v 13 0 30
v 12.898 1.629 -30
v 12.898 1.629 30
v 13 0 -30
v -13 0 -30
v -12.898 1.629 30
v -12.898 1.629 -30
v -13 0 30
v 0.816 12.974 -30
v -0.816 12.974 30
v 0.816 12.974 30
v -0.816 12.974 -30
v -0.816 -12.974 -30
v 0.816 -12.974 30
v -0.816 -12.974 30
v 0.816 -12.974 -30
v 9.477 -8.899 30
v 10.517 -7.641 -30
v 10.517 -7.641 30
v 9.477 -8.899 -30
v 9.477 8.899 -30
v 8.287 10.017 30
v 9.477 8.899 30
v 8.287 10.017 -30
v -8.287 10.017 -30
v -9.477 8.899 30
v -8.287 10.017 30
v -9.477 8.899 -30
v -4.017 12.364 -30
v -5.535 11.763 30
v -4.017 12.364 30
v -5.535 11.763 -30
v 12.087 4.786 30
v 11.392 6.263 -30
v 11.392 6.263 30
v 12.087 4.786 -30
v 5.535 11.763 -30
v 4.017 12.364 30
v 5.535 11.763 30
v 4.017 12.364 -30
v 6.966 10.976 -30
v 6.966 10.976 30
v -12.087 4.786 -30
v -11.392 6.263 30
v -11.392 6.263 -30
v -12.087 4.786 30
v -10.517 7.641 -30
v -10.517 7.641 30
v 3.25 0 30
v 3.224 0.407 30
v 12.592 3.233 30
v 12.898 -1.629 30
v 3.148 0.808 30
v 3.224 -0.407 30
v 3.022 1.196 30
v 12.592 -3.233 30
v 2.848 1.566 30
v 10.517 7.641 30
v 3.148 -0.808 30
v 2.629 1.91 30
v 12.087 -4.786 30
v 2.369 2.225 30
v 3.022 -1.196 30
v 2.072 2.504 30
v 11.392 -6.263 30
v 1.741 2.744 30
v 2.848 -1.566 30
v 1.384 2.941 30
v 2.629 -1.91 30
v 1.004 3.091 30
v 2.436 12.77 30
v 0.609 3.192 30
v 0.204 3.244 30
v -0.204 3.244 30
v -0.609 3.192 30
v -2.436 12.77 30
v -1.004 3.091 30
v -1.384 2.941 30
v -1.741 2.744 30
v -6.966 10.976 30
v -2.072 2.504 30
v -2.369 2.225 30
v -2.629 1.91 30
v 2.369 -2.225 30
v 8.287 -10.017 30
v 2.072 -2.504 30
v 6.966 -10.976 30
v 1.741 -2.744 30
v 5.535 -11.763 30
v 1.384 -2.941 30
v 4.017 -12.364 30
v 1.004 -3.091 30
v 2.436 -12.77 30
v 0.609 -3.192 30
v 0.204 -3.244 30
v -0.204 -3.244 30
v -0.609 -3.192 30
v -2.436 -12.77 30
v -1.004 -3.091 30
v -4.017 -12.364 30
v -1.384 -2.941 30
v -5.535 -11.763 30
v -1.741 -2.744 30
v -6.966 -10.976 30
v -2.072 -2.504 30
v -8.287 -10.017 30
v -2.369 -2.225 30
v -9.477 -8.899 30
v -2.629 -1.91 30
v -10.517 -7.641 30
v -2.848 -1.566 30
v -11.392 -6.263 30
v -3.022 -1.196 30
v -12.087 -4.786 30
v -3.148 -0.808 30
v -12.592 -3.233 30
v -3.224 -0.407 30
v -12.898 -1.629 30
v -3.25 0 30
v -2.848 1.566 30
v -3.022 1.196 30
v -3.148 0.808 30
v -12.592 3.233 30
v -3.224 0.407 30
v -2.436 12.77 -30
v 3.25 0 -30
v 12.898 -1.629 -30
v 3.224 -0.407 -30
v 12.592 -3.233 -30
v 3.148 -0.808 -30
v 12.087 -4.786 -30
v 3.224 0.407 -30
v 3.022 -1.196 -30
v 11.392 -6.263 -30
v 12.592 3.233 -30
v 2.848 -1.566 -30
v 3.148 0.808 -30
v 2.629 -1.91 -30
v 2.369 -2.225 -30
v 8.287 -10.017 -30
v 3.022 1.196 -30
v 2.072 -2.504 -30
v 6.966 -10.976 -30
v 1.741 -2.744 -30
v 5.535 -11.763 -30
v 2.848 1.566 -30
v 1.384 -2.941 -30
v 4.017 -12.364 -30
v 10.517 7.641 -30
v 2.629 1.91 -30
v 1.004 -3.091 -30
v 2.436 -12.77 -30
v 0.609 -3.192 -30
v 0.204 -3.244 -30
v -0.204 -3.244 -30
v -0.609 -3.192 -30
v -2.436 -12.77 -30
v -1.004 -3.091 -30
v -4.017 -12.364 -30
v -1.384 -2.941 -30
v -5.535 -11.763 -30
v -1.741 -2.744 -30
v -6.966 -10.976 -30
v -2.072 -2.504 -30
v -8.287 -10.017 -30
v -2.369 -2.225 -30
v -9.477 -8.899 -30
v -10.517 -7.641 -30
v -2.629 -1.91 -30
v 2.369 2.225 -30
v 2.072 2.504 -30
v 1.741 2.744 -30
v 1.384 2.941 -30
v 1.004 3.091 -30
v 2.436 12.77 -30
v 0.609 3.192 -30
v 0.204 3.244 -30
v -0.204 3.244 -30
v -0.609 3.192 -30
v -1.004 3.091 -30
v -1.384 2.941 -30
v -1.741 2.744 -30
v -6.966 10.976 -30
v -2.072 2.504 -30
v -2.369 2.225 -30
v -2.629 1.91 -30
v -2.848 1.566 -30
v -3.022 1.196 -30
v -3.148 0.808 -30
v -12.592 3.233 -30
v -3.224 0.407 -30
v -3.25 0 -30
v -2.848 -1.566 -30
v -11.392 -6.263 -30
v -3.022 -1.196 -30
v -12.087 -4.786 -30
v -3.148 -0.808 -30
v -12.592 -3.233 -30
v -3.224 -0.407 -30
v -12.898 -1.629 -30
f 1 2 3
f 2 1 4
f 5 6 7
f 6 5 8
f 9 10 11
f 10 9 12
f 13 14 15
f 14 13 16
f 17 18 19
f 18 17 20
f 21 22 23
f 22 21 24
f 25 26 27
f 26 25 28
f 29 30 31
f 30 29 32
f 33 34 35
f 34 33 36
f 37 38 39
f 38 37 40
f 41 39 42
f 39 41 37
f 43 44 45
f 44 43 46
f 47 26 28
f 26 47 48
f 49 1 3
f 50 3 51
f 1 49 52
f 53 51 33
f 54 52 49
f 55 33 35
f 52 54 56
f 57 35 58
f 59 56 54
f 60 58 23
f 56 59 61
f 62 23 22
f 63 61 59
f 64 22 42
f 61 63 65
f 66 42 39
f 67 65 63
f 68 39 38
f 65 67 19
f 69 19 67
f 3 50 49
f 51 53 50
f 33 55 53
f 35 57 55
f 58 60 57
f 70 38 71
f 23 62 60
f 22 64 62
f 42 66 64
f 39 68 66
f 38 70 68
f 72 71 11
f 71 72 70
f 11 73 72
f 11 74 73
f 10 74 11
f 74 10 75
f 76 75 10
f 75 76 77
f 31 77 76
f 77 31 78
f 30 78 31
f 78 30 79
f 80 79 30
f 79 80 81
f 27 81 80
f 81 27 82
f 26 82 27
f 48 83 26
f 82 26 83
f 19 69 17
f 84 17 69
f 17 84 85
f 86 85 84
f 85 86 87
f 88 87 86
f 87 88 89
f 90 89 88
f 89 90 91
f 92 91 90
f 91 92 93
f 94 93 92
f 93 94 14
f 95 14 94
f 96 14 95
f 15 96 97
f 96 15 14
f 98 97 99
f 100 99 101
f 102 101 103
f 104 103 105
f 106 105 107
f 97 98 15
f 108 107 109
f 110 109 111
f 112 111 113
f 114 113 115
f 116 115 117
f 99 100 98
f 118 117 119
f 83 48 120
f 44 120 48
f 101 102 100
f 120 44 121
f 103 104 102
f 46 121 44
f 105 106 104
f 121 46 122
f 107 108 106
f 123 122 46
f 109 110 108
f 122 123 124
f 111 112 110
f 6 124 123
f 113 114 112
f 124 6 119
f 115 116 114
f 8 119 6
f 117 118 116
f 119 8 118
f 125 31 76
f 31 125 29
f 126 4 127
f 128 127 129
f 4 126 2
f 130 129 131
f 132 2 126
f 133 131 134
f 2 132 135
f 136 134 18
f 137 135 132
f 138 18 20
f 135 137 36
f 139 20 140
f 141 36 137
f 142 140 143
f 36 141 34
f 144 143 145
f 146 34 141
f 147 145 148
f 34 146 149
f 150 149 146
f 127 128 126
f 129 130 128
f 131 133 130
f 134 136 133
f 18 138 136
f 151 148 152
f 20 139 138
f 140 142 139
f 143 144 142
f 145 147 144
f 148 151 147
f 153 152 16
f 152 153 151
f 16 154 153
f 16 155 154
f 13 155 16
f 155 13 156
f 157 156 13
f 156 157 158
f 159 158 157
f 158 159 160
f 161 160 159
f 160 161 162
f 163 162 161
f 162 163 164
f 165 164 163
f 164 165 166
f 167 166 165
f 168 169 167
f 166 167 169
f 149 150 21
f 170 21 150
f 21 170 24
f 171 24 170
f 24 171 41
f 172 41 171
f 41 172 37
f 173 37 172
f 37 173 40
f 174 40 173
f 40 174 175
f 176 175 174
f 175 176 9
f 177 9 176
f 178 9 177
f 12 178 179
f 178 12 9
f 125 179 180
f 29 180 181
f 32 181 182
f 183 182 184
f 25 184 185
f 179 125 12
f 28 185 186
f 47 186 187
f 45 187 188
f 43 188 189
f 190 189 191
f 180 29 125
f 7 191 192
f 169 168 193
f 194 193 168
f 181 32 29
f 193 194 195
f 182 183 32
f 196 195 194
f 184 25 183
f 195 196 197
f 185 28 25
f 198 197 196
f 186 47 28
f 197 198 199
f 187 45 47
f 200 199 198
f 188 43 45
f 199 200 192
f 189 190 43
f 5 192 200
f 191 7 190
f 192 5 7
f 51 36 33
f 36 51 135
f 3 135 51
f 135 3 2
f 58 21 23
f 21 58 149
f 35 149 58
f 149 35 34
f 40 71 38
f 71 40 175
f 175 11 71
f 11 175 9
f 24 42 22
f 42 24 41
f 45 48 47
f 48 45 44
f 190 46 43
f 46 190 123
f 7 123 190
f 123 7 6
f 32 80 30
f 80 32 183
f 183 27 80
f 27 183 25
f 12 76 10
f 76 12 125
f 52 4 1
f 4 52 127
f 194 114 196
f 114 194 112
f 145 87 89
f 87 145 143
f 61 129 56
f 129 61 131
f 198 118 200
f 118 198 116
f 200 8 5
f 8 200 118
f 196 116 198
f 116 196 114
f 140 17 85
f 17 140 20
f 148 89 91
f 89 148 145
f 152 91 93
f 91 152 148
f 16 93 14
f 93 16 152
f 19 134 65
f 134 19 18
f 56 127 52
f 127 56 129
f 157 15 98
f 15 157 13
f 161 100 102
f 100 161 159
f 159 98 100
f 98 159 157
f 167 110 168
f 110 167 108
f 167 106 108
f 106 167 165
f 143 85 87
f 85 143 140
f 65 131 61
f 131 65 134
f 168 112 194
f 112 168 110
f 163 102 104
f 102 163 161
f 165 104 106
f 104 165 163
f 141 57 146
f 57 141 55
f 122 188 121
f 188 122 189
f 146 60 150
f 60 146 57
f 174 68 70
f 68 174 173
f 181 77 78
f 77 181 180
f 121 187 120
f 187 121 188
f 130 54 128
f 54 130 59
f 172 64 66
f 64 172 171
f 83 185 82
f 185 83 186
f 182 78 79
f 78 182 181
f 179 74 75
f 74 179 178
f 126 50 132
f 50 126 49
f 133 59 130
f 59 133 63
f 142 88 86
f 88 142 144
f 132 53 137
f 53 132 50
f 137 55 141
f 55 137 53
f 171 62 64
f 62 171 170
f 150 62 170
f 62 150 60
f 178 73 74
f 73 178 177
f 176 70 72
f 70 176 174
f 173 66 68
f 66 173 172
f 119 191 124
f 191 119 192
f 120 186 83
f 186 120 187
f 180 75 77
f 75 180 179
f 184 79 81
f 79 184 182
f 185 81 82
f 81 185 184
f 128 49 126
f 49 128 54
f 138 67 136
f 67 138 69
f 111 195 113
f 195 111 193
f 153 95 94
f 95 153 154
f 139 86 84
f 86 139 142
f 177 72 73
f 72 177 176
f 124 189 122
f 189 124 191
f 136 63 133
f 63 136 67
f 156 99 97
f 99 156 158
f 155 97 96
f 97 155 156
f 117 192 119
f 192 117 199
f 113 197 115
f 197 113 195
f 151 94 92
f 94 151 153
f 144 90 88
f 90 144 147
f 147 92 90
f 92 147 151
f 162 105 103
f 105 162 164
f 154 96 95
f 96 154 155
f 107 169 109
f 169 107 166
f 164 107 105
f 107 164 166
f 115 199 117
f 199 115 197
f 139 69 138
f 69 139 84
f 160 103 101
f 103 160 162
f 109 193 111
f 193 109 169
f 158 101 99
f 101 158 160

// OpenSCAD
$fn = 50;


difference() {
	union() {
		translate(v = [0, 0, -30.0000000000]) {
			cylinder(h = 60, r = 13.0000000000);
		}
	}
	union() {
		translate(v = [0, 0, -100.0000000000]) {
			cylinder(h = 200, r = 3.2500000000);
		}
	}
}
